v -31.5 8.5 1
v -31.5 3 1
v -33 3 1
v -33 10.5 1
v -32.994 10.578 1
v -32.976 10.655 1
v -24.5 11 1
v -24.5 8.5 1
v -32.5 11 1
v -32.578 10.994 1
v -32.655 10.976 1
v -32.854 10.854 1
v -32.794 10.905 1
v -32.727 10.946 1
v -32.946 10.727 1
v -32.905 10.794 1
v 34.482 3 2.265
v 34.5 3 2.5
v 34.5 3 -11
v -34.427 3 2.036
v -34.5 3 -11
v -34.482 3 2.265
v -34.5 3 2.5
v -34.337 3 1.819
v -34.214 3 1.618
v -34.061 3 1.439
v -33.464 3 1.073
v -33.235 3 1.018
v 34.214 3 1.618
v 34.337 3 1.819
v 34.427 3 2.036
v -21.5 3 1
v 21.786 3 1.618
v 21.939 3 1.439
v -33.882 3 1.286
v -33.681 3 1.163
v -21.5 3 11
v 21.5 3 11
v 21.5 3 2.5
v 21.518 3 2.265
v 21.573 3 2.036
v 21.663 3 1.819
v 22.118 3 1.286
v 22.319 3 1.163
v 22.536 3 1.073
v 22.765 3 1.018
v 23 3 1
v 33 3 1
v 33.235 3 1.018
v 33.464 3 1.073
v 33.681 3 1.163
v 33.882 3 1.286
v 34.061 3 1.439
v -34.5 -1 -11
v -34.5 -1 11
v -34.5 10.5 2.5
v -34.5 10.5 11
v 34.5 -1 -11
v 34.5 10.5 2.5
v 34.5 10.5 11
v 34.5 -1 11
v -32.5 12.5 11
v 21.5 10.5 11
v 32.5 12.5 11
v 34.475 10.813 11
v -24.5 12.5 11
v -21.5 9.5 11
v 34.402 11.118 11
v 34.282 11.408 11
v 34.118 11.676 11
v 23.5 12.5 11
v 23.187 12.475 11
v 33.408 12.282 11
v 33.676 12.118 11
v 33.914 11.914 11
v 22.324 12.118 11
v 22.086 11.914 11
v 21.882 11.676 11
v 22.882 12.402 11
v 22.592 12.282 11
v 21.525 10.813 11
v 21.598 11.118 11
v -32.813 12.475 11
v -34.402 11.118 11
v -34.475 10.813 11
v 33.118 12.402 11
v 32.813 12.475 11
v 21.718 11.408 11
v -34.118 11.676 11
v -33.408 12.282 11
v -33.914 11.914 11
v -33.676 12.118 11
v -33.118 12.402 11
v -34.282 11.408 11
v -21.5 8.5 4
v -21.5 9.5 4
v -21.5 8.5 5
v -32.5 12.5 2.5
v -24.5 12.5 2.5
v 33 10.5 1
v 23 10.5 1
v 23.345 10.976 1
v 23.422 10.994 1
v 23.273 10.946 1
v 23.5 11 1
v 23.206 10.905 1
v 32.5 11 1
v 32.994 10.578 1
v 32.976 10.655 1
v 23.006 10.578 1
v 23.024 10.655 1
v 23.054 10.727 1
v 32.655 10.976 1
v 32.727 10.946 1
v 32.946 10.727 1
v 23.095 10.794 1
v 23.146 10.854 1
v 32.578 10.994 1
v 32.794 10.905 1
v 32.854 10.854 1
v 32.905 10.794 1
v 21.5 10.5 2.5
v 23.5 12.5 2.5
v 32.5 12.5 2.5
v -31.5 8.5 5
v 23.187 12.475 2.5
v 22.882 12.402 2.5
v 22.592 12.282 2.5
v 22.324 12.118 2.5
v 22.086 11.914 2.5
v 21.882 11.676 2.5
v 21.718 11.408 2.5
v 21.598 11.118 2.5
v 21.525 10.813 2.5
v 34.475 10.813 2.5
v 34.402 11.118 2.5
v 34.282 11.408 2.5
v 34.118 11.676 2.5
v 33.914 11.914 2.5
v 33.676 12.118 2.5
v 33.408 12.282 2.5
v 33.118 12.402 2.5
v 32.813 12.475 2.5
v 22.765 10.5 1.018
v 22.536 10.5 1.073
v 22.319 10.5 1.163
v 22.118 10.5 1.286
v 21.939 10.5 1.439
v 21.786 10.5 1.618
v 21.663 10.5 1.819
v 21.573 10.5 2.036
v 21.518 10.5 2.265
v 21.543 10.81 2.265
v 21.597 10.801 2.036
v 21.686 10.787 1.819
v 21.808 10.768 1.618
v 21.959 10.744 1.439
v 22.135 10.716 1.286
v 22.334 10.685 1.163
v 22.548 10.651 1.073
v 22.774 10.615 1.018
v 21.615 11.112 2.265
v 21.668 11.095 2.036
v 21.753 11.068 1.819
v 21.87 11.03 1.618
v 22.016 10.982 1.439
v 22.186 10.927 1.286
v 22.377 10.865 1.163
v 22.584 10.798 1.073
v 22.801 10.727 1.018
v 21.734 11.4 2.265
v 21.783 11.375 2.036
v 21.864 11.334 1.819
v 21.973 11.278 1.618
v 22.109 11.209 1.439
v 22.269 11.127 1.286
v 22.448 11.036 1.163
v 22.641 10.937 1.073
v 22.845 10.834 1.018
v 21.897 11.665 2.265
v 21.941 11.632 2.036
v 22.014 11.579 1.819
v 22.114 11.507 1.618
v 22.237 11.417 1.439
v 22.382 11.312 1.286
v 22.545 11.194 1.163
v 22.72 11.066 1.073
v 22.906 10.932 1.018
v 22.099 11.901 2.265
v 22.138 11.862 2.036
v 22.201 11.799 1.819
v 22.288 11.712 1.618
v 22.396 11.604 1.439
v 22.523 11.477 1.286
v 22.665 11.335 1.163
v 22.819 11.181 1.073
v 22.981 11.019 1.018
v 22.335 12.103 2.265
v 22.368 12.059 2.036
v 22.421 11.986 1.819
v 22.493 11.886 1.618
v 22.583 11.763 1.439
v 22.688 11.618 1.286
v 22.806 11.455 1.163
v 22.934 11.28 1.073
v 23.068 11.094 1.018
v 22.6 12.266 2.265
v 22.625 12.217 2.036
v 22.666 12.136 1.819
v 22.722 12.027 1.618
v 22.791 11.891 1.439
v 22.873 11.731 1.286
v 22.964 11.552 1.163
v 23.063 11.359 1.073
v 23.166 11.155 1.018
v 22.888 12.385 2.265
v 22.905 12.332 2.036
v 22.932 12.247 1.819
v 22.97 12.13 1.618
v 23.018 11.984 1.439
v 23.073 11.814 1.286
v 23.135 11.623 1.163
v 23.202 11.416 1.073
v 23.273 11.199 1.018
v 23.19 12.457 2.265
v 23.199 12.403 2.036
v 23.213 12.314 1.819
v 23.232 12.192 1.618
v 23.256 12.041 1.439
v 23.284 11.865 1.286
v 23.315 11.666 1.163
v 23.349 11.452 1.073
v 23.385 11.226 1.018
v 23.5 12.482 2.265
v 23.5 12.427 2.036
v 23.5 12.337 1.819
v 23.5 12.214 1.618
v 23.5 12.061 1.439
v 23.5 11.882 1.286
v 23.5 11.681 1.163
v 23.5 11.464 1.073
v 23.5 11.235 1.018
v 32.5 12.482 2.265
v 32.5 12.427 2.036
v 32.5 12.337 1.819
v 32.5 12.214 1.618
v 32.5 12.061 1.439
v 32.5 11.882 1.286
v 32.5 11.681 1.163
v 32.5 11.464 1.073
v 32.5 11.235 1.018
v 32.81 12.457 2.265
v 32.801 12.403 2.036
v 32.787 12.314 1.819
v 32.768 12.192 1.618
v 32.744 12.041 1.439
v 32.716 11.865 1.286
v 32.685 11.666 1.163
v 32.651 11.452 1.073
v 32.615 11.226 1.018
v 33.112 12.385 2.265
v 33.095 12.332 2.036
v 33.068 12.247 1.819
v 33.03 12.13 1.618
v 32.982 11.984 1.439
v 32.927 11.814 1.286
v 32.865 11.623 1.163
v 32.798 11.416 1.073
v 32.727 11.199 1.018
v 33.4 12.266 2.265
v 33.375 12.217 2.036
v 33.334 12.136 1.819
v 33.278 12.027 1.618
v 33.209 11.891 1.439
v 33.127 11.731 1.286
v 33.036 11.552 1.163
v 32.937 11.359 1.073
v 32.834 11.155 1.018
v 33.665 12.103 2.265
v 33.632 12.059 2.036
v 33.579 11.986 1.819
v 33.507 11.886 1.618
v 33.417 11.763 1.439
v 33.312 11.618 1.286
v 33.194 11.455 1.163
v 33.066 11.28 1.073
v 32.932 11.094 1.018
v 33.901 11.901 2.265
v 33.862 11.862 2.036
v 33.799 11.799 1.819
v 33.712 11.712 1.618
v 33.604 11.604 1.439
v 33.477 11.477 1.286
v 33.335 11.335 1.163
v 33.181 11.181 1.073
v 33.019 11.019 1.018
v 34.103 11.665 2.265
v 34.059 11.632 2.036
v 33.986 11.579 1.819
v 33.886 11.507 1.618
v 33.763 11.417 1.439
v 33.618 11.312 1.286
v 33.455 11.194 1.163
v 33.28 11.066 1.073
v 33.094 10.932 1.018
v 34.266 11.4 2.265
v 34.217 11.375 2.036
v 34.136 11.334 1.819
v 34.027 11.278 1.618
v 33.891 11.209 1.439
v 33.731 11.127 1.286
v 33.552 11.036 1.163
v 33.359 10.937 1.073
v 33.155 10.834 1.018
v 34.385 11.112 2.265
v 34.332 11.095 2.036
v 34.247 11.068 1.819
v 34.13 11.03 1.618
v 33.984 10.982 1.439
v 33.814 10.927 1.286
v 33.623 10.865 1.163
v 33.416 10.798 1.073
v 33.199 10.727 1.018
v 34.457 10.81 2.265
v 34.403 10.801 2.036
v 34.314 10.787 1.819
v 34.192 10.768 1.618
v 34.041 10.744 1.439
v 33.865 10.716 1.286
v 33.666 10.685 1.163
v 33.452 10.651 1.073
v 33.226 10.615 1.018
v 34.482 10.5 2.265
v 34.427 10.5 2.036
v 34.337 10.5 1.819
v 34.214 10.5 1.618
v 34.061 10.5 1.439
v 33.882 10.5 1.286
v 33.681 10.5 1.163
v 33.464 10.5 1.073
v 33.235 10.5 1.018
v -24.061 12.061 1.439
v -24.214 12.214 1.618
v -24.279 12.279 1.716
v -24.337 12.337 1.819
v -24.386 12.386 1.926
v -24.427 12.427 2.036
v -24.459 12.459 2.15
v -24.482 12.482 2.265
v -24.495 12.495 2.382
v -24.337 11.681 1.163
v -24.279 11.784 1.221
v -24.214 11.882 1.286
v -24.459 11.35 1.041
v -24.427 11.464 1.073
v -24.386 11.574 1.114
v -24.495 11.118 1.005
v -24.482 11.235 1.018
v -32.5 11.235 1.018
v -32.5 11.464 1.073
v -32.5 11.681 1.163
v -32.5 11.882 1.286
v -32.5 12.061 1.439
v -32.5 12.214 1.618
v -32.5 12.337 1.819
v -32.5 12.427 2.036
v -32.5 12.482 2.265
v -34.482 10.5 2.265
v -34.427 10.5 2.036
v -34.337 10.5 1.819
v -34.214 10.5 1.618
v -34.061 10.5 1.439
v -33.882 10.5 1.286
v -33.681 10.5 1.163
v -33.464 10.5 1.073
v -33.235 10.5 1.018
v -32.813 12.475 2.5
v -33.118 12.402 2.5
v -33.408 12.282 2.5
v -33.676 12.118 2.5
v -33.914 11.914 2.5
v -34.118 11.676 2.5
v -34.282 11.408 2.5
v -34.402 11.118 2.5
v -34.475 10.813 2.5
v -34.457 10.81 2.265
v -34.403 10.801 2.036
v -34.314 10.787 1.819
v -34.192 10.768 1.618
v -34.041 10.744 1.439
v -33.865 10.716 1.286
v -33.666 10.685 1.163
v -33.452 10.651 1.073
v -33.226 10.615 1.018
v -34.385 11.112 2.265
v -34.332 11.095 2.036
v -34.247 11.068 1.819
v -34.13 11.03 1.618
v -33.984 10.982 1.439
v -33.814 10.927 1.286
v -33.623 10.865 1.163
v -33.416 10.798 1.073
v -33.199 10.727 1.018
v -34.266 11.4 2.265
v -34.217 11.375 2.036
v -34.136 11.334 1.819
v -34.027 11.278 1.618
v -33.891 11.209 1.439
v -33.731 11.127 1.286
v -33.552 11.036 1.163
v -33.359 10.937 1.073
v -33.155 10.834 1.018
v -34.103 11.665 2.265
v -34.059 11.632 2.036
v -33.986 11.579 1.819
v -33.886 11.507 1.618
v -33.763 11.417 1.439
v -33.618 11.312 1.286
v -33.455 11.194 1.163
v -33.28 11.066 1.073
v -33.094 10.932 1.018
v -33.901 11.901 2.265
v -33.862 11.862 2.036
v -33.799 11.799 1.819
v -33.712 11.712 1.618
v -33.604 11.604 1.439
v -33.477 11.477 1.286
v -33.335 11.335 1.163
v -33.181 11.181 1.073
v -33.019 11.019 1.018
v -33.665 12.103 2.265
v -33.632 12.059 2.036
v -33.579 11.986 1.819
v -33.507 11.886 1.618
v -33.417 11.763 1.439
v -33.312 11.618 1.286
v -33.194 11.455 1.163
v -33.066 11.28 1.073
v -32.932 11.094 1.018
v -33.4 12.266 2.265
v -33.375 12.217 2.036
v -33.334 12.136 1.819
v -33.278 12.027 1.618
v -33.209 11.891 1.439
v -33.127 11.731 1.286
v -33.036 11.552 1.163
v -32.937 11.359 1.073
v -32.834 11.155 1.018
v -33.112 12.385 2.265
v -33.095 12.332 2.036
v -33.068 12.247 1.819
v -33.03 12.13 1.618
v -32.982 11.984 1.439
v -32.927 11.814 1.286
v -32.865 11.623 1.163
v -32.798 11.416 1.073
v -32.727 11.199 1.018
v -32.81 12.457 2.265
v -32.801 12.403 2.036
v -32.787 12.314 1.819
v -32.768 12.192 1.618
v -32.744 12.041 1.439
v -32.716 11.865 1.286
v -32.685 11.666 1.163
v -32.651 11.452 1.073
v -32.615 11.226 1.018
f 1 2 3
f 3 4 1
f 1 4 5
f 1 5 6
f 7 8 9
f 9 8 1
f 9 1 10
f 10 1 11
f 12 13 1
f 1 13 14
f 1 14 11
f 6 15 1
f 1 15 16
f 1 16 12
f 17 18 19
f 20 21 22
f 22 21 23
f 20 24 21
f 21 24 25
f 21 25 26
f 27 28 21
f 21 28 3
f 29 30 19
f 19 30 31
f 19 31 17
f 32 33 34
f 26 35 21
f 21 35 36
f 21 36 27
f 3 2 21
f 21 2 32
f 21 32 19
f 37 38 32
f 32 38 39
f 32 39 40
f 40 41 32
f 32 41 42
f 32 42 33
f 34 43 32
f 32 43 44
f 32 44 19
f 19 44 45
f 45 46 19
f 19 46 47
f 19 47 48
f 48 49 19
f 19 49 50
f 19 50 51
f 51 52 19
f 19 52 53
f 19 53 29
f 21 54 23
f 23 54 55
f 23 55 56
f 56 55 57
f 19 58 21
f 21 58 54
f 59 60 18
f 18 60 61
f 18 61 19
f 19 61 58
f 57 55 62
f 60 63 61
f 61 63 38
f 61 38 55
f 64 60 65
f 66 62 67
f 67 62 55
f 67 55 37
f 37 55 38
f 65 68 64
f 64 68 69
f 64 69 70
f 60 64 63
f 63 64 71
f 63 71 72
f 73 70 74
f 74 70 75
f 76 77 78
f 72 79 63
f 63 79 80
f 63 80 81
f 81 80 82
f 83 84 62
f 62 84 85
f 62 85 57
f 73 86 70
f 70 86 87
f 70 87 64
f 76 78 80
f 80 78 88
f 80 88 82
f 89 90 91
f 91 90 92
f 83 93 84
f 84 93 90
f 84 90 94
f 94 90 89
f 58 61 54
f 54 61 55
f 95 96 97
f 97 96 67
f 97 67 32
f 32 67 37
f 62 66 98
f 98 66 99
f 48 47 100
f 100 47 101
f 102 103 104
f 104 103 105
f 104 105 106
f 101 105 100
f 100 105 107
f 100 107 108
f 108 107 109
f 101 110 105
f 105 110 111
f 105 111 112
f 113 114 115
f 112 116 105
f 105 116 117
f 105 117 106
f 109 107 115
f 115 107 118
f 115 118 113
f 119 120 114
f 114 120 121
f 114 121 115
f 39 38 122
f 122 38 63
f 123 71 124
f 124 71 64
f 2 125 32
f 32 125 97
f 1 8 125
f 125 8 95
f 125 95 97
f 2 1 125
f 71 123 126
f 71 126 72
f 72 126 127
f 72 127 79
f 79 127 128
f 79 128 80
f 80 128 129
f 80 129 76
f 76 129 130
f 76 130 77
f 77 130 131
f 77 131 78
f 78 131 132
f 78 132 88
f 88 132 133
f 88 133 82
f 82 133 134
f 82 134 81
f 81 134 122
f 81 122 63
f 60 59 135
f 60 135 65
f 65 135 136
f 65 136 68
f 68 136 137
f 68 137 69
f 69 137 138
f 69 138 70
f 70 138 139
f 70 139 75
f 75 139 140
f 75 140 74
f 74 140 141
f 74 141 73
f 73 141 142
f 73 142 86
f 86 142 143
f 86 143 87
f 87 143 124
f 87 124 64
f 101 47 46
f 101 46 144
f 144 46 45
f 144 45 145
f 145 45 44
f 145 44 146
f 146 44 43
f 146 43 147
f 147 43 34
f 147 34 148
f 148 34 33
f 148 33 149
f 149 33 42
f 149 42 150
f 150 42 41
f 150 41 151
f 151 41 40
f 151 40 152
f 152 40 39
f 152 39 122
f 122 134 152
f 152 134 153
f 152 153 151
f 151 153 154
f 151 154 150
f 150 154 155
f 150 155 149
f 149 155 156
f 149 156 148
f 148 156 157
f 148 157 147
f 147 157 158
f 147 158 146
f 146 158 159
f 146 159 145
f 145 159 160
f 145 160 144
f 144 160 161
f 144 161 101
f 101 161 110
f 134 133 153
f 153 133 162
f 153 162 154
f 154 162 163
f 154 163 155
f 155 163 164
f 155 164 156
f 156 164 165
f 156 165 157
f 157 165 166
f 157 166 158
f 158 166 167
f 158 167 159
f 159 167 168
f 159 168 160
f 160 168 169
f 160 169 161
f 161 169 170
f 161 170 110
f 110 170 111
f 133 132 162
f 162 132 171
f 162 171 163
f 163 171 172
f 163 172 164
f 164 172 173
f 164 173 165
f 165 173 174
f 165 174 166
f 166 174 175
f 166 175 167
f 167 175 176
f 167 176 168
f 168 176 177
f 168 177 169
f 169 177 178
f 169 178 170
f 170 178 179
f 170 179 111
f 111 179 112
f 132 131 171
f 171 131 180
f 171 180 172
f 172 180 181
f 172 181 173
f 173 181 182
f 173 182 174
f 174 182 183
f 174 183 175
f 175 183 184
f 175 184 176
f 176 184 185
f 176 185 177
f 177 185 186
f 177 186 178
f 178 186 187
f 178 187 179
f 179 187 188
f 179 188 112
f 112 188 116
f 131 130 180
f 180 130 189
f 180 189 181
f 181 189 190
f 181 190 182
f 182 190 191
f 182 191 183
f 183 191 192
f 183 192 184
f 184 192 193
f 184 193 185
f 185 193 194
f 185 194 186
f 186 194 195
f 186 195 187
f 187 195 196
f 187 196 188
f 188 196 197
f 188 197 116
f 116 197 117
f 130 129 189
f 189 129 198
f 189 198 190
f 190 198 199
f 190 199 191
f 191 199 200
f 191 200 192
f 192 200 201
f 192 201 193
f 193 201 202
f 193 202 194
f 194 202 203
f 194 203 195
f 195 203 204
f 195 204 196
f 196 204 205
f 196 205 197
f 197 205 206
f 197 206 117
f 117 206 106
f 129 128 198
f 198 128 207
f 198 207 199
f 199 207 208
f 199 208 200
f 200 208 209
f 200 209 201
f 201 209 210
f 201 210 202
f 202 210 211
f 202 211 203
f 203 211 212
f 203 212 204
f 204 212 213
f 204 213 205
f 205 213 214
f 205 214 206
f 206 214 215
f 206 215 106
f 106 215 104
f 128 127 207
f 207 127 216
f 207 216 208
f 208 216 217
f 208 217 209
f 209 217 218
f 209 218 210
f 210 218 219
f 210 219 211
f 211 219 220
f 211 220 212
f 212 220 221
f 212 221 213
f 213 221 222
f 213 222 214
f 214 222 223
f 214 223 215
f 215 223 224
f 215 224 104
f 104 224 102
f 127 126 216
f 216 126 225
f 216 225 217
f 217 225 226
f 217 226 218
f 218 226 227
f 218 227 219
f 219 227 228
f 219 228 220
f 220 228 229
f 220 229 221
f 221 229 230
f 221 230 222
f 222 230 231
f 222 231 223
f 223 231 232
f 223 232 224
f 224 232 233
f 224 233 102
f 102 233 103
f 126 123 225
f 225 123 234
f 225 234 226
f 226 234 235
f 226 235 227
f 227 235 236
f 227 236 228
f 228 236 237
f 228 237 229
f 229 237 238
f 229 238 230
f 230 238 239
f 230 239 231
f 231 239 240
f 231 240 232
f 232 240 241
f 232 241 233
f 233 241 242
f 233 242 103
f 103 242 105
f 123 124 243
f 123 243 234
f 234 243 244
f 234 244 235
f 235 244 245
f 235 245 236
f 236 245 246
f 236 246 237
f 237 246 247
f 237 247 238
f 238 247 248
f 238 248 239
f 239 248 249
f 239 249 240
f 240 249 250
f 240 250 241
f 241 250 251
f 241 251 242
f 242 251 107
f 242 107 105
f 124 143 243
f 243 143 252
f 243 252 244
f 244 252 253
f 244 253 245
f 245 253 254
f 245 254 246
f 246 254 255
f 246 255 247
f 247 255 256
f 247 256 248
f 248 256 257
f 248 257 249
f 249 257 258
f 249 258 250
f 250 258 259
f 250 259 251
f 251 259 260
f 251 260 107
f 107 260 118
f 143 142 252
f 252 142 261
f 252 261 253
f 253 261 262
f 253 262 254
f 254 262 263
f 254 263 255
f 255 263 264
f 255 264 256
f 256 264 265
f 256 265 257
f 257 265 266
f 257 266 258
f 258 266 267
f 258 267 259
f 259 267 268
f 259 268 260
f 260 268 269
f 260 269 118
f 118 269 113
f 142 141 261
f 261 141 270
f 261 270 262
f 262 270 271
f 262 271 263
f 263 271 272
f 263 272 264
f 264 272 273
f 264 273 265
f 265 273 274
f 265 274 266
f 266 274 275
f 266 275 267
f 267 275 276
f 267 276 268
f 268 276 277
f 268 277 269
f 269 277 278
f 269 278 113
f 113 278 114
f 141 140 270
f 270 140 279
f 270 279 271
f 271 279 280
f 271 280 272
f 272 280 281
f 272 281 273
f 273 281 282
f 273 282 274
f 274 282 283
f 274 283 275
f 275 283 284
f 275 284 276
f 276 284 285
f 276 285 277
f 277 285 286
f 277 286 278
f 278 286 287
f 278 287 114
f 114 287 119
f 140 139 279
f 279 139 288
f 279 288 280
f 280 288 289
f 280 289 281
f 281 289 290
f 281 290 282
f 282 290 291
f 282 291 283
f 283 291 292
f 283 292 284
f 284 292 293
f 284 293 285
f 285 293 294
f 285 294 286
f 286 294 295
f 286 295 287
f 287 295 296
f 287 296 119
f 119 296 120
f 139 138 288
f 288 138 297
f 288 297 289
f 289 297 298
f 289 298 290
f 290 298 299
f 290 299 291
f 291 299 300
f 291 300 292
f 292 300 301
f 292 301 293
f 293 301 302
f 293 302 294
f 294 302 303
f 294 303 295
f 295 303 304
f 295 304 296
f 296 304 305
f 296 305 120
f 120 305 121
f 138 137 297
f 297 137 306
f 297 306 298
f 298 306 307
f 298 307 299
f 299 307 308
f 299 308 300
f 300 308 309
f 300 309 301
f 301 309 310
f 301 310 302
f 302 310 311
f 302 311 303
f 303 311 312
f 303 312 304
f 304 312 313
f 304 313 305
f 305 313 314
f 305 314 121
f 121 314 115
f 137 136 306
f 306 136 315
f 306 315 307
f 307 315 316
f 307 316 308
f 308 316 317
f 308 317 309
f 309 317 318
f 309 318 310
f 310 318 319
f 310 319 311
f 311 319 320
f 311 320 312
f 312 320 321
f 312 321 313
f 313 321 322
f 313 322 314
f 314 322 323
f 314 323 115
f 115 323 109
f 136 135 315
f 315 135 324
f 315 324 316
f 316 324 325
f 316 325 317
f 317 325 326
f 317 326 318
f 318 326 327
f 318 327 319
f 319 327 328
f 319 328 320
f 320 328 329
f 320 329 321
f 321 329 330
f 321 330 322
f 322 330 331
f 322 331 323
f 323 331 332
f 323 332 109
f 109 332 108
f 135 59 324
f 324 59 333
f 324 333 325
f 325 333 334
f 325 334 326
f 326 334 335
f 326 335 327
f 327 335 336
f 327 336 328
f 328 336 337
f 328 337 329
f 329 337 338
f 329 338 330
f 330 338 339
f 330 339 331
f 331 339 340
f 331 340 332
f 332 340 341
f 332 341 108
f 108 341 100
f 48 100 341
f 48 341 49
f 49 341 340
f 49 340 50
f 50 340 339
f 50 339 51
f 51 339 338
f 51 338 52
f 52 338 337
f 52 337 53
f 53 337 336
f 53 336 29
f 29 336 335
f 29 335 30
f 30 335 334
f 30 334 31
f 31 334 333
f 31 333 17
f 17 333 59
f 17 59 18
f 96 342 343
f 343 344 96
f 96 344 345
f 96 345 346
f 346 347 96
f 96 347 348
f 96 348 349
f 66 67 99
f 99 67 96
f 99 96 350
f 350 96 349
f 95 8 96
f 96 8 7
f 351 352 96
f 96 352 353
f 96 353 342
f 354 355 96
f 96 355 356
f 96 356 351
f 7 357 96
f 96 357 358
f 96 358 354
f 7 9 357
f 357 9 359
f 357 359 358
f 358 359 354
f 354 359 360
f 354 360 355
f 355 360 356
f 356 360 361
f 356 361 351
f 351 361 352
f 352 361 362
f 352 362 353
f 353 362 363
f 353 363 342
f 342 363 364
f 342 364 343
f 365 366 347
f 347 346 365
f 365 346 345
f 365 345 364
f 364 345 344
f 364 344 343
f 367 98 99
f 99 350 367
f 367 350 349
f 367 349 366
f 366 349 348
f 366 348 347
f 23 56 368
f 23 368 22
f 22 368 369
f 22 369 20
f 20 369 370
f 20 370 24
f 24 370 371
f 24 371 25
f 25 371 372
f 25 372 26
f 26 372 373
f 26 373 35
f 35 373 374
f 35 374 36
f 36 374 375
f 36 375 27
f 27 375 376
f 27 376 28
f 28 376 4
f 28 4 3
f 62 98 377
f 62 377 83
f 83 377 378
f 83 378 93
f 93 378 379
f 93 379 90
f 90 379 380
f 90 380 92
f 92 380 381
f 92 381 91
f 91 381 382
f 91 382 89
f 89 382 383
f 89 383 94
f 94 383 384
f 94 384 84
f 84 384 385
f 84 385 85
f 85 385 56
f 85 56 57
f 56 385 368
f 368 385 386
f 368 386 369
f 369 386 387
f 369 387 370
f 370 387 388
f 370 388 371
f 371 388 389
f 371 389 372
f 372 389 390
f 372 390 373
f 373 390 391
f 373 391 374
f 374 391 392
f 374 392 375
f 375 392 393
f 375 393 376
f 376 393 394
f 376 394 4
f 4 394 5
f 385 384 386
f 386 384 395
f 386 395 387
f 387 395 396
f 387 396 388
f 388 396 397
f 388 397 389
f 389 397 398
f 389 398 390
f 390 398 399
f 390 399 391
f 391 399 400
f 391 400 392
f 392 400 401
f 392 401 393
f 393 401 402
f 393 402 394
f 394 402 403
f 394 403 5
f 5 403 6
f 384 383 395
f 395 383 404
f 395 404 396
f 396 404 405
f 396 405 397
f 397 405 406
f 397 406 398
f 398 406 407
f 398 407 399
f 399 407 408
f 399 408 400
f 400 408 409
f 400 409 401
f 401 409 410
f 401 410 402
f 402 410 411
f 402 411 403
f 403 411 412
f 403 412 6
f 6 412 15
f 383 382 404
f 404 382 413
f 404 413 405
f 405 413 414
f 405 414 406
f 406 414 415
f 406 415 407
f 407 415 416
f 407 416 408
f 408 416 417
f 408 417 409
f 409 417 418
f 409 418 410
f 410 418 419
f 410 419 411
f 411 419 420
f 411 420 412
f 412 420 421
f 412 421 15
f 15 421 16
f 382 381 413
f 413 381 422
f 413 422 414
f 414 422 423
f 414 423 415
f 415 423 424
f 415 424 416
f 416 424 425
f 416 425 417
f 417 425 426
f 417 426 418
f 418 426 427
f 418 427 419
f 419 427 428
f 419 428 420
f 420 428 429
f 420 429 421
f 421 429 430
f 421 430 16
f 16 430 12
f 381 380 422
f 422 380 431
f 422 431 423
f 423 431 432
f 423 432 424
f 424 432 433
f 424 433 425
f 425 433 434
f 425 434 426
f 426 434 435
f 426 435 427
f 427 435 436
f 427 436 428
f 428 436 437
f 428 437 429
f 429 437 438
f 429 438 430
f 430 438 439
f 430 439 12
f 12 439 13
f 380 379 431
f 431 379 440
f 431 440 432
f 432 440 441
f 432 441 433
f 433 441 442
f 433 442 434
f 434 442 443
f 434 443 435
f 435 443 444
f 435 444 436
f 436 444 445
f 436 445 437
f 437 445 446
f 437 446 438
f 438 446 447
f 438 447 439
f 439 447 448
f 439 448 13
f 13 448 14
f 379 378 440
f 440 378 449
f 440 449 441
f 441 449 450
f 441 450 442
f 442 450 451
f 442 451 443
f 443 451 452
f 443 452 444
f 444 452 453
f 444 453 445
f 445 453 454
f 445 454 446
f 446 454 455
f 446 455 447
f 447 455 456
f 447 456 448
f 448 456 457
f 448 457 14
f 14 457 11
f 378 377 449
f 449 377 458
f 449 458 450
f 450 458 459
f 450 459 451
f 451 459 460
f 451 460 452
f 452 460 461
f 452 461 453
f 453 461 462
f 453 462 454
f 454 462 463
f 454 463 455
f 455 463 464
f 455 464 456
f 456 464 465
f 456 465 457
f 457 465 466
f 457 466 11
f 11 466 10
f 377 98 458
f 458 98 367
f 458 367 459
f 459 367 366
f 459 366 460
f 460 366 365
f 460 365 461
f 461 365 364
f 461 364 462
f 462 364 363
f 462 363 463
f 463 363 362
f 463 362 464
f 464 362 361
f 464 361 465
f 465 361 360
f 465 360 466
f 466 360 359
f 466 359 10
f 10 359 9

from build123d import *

# Parameters (mm, degrees)
BOSS_EXTRUDE1_DEPTH      = 3
BOSS_EXTRUDE1_DEPTH_BACK = 1
SKETCH1_W                = 69
SKETCH1_H                = 22
SKETCH2_W                = 13
SKETCH2_H                = 10
BOSS_EXTRUDE2_DEPTH      = 9.5
CUT_EXTRUDE1_DEPTH       = 10
FILLET1_R                = 2
FILLET2_R                = 1.5
CHAMFER1_SIZE            = 3
FILLET3_R                = 1.5
FILLET4_R                = 2


with BuildPart() as part:
    # Sketch1 → Boss-Extrude1 (new, two sides: drawn at the far end of the back side and taken through both)
    with BuildSketch(Plane(origin=(0, 0, 0), x_dir=(1, 0, 0), z_dir=(0, 1, 0)).offset(-BOSS_EXTRUDE1_DEPTH_BACK)):
        Rectangle(SKETCH1_W, SKETCH1_H)
    extrude(amount=BOSS_EXTRUDE1_DEPTH + BOSS_EXTRUDE1_DEPTH_BACK)

    # Sketch2 → Boss-Extrude2 (add)
    with BuildSketch(Plane(origin=(0, 3, 0), x_dir=(1, 0, 0), z_dir=(0, 1, 0))):
        with Locations((-28, -6)):
            Rectangle(SKETCH2_W, SKETCH2_H)
        with Locations((28, -6)):
            Rectangle(SKETCH2_W, SKETCH2_H)
    extrude(amount=BOSS_EXTRUDE2_DEPTH)

    # Sketch3 → Cut-Extrude1 (cut)
    with BuildSketch(Plane(origin=(-21.5, 0, 0), x_dir=(0, 0, -1), z_dir=(1, 0, 0))):
        Polygon((-1, 3), (-1, 8.5), (-5, 8.5), align=None)
    extrude(amount=-CUT_EXTRUDE1_DEPTH, mode=Mode.SUBTRACT)

    # Fillet1
    fillet1_edges = [part.edges().sort_by_distance(p)[0] for p in [
        (34.5, 12.5, 6),
        (21.5, 12.5, 6),
    ]]
    fillet(fillet1_edges, radius=FILLET1_R)

    # Fillet2
    fillet2_edges = [part.edges().sort_by_distance(p)[0] for p in [
        (28, 12.5, 1),
        (21.5, 6.75, 1),
        (34.5, 6.75, 1),
        (33.914213562, 11.914213562, 1),
        (22.085786438, 11.914213562, 1),
    ]]
    fillet(fillet2_edges, radius=FILLET2_R)

    # Chamfer1
    chamfer1_edges = [part.edges().sort_by_distance(p)[0] for p in [
        (-21.5, 10.5, 1),
        (-21.5, 12.5, 6),
    ]]
    chamfer(chamfer1_edges, length=CHAMFER1_SIZE)

    # Fillet3
    fillet3_edges = [part.edges().sort_by_distance(p)[0] for p in [
        (-34.5, 7.75, 1),
        (-29.5, 12.5, 1),
    ]]
    fillet(fillet3_edges, radius=FILLET3_R)

    # Fillet4
    # the kernel refuses this fillet: 2 mm, written as the material it takes off along each edge
    with BuildSketch(Plane(origin=(-32.5, 10.5, 1), x_dir=(-1, 0, 0), z_dir=(0, -1, 0))) as fillet4_piece_1:
        with BuildLine():
            CenterArc((0.5, -1.5), 1.5, 0, 90)
            Line((2, -1.5), (2, 0))
            Line((2, 0), (0.5, 0))
        make_face()
    revolve(axis=Axis((-32.5, 10.5, 1), (0, 0, -1)), revolution_arc=90, mode=Mode.SUBTRACT)
    with BuildSketch(Plane(origin=(-34.5, 12.5, 1), x_dir=(0, -1, 0), z_dir=(0, 0, 1))) as fillet4_piece_2:
        with BuildLine():
            CenterArc((FILLET4_R, FILLET4_R), FILLET4_R, 180, 90)
            Line((0, FILLET4_R), (0, 0))
            Line((0, 0), (FILLET4_R, 0))
        make_face()
    extrude(amount=15, mode=Mode.SUBTRACT)


solid = part.part
